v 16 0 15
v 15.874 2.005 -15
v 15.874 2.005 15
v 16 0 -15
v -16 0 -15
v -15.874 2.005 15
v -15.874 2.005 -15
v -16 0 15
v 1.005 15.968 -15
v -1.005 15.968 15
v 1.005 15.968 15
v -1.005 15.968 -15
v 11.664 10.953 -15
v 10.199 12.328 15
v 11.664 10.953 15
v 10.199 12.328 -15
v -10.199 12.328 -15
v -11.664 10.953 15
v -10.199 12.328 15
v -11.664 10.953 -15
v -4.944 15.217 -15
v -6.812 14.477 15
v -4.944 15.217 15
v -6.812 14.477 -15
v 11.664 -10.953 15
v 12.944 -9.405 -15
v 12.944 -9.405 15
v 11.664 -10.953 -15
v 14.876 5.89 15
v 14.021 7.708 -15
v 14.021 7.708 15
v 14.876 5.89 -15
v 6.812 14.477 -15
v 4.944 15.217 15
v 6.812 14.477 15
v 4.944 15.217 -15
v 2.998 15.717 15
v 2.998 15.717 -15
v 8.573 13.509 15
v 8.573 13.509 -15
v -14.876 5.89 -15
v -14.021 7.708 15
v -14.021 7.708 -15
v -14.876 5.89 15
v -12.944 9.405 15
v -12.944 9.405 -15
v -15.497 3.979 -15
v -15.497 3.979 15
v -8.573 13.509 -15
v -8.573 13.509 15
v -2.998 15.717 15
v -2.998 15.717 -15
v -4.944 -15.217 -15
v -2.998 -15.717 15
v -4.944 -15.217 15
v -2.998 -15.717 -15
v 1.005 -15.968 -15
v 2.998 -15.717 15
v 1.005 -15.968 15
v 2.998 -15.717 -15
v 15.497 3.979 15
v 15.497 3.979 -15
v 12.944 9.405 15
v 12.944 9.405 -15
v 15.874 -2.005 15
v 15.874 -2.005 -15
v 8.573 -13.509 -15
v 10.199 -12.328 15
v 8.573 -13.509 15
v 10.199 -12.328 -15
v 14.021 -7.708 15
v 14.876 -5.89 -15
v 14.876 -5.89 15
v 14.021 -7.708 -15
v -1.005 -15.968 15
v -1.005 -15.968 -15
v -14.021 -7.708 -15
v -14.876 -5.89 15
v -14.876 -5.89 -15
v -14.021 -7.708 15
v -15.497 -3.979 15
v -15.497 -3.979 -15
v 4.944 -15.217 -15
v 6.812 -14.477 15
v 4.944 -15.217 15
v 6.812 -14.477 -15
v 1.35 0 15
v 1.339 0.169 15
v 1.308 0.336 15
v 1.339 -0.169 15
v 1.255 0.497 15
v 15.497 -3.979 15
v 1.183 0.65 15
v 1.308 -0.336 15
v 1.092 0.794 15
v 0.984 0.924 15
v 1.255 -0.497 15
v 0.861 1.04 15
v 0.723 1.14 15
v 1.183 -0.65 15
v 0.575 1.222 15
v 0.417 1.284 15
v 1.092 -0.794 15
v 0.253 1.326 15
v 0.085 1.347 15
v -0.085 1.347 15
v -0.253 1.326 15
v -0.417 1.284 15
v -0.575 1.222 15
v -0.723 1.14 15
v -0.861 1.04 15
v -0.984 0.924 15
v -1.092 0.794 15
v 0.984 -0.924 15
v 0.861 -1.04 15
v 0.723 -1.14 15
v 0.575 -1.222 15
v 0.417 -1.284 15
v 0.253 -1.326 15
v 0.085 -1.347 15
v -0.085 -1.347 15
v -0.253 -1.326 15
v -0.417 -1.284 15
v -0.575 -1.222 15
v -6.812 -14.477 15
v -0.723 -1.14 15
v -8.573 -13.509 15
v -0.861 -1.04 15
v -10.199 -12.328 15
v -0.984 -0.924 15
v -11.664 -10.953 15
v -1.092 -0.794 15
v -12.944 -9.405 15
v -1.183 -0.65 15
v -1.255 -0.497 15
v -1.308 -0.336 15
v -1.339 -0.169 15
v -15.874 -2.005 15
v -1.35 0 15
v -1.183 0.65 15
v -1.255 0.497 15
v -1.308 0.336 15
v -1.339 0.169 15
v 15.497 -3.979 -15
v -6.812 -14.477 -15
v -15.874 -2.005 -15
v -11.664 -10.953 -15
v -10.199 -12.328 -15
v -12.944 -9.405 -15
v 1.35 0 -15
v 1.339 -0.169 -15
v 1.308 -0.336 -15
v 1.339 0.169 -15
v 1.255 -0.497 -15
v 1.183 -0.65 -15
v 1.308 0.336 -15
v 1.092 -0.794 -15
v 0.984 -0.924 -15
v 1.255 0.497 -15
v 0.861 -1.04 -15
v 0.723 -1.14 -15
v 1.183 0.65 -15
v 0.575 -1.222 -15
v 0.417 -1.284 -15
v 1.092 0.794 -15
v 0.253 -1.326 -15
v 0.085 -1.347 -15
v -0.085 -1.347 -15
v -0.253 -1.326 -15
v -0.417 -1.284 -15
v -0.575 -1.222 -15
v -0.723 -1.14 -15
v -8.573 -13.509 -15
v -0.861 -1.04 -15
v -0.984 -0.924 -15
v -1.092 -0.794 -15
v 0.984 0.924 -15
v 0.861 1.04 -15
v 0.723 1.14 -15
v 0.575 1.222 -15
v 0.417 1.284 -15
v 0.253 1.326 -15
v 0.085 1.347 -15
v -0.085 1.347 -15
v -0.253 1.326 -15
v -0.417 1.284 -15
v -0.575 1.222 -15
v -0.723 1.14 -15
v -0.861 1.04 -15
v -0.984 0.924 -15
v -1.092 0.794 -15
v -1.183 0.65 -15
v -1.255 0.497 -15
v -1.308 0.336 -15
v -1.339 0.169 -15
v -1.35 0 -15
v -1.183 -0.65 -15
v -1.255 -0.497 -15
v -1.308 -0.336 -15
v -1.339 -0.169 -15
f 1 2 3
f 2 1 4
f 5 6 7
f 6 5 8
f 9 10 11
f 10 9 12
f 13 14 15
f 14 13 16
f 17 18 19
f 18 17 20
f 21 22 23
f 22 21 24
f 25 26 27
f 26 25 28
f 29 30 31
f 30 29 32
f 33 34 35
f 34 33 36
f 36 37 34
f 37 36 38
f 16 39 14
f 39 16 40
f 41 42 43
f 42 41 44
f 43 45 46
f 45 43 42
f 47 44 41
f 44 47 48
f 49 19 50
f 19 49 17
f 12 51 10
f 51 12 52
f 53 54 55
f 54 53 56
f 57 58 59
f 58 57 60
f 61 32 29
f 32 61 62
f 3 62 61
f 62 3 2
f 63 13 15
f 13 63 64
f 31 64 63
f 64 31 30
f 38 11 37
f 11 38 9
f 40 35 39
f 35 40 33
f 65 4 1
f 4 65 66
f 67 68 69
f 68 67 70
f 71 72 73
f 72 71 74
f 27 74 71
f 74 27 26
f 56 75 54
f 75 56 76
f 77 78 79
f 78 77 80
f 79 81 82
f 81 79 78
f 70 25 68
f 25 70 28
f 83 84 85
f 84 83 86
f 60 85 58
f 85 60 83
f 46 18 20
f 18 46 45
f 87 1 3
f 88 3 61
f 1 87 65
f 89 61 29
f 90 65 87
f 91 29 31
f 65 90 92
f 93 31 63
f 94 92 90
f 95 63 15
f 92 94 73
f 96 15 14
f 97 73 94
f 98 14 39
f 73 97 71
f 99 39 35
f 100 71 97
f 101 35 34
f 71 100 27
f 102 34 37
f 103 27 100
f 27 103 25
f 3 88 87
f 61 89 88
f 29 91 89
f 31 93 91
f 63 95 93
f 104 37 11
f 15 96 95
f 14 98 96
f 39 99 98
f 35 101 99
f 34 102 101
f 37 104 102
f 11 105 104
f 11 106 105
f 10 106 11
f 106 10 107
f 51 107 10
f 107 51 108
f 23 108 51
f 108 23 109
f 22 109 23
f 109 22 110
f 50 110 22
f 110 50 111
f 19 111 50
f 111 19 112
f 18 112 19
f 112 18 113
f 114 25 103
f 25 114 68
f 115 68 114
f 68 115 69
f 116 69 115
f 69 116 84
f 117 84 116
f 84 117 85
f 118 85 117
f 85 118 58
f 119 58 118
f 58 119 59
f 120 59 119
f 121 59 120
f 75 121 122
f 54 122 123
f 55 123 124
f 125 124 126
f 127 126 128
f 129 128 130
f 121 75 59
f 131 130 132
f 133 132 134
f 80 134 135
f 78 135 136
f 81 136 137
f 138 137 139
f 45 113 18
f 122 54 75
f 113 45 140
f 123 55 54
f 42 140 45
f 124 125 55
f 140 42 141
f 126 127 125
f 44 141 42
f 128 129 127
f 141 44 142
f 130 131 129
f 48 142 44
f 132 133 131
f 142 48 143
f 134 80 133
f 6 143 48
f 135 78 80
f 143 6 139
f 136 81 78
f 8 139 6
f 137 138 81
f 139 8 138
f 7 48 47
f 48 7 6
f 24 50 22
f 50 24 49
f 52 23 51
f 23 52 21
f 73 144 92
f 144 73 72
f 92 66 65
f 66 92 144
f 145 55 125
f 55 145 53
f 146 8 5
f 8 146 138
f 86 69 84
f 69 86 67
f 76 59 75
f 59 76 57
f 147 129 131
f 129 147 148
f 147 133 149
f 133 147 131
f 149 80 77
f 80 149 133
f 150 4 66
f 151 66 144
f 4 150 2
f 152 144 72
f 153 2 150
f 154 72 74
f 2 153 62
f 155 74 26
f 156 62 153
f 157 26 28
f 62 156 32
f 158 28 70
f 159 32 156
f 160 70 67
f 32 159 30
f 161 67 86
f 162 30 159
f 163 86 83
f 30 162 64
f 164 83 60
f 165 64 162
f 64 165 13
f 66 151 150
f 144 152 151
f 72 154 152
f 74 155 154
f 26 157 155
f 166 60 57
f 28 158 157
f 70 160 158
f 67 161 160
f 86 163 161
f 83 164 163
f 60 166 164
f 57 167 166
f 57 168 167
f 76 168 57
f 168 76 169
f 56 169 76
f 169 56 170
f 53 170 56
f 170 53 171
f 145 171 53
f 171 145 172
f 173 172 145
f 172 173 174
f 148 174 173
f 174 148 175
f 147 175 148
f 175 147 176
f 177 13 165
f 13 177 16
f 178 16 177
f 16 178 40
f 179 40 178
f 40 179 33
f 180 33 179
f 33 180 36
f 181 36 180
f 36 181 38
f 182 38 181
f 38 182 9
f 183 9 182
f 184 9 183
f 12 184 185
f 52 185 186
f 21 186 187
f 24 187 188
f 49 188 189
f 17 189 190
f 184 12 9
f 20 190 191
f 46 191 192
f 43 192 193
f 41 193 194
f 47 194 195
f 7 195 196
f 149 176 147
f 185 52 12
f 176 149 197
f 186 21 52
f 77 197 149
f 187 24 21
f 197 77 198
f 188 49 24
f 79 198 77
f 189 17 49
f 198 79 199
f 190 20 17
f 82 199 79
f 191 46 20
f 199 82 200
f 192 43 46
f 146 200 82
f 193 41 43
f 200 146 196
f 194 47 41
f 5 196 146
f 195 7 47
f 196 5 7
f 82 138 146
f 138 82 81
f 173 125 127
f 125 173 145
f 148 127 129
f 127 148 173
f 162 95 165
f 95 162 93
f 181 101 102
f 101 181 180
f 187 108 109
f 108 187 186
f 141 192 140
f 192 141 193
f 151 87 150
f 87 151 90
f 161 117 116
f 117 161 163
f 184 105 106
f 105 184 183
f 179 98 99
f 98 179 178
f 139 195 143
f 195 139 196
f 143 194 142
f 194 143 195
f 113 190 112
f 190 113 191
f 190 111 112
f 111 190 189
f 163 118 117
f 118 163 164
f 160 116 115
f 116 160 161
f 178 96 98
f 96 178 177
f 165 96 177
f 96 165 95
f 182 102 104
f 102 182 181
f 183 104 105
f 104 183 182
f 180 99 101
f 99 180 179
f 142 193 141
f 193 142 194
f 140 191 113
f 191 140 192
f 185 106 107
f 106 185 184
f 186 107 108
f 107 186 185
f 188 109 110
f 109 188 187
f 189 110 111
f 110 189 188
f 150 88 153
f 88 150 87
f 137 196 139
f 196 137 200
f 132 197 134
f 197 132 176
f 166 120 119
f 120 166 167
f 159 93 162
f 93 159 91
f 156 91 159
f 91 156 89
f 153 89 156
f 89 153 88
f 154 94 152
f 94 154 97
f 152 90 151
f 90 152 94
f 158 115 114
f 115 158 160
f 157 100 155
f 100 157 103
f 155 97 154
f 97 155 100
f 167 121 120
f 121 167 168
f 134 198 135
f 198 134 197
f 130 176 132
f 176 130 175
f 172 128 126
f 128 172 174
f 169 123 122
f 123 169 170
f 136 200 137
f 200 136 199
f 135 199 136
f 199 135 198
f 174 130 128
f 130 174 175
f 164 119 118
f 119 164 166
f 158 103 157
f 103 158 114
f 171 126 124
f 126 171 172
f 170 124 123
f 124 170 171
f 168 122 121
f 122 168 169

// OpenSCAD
$fn = 50;


difference() {
	union() {
		translate(v = [0, 0, -15.0000000000]) {
			cylinder(h = 30, r = 16.0000000000);
		}
	}
	union() {
		translate(v = [0, 0, -100.0000000000]) {
			cylinder(h = 200, r = 1.3500000000);
		}
	}
}
